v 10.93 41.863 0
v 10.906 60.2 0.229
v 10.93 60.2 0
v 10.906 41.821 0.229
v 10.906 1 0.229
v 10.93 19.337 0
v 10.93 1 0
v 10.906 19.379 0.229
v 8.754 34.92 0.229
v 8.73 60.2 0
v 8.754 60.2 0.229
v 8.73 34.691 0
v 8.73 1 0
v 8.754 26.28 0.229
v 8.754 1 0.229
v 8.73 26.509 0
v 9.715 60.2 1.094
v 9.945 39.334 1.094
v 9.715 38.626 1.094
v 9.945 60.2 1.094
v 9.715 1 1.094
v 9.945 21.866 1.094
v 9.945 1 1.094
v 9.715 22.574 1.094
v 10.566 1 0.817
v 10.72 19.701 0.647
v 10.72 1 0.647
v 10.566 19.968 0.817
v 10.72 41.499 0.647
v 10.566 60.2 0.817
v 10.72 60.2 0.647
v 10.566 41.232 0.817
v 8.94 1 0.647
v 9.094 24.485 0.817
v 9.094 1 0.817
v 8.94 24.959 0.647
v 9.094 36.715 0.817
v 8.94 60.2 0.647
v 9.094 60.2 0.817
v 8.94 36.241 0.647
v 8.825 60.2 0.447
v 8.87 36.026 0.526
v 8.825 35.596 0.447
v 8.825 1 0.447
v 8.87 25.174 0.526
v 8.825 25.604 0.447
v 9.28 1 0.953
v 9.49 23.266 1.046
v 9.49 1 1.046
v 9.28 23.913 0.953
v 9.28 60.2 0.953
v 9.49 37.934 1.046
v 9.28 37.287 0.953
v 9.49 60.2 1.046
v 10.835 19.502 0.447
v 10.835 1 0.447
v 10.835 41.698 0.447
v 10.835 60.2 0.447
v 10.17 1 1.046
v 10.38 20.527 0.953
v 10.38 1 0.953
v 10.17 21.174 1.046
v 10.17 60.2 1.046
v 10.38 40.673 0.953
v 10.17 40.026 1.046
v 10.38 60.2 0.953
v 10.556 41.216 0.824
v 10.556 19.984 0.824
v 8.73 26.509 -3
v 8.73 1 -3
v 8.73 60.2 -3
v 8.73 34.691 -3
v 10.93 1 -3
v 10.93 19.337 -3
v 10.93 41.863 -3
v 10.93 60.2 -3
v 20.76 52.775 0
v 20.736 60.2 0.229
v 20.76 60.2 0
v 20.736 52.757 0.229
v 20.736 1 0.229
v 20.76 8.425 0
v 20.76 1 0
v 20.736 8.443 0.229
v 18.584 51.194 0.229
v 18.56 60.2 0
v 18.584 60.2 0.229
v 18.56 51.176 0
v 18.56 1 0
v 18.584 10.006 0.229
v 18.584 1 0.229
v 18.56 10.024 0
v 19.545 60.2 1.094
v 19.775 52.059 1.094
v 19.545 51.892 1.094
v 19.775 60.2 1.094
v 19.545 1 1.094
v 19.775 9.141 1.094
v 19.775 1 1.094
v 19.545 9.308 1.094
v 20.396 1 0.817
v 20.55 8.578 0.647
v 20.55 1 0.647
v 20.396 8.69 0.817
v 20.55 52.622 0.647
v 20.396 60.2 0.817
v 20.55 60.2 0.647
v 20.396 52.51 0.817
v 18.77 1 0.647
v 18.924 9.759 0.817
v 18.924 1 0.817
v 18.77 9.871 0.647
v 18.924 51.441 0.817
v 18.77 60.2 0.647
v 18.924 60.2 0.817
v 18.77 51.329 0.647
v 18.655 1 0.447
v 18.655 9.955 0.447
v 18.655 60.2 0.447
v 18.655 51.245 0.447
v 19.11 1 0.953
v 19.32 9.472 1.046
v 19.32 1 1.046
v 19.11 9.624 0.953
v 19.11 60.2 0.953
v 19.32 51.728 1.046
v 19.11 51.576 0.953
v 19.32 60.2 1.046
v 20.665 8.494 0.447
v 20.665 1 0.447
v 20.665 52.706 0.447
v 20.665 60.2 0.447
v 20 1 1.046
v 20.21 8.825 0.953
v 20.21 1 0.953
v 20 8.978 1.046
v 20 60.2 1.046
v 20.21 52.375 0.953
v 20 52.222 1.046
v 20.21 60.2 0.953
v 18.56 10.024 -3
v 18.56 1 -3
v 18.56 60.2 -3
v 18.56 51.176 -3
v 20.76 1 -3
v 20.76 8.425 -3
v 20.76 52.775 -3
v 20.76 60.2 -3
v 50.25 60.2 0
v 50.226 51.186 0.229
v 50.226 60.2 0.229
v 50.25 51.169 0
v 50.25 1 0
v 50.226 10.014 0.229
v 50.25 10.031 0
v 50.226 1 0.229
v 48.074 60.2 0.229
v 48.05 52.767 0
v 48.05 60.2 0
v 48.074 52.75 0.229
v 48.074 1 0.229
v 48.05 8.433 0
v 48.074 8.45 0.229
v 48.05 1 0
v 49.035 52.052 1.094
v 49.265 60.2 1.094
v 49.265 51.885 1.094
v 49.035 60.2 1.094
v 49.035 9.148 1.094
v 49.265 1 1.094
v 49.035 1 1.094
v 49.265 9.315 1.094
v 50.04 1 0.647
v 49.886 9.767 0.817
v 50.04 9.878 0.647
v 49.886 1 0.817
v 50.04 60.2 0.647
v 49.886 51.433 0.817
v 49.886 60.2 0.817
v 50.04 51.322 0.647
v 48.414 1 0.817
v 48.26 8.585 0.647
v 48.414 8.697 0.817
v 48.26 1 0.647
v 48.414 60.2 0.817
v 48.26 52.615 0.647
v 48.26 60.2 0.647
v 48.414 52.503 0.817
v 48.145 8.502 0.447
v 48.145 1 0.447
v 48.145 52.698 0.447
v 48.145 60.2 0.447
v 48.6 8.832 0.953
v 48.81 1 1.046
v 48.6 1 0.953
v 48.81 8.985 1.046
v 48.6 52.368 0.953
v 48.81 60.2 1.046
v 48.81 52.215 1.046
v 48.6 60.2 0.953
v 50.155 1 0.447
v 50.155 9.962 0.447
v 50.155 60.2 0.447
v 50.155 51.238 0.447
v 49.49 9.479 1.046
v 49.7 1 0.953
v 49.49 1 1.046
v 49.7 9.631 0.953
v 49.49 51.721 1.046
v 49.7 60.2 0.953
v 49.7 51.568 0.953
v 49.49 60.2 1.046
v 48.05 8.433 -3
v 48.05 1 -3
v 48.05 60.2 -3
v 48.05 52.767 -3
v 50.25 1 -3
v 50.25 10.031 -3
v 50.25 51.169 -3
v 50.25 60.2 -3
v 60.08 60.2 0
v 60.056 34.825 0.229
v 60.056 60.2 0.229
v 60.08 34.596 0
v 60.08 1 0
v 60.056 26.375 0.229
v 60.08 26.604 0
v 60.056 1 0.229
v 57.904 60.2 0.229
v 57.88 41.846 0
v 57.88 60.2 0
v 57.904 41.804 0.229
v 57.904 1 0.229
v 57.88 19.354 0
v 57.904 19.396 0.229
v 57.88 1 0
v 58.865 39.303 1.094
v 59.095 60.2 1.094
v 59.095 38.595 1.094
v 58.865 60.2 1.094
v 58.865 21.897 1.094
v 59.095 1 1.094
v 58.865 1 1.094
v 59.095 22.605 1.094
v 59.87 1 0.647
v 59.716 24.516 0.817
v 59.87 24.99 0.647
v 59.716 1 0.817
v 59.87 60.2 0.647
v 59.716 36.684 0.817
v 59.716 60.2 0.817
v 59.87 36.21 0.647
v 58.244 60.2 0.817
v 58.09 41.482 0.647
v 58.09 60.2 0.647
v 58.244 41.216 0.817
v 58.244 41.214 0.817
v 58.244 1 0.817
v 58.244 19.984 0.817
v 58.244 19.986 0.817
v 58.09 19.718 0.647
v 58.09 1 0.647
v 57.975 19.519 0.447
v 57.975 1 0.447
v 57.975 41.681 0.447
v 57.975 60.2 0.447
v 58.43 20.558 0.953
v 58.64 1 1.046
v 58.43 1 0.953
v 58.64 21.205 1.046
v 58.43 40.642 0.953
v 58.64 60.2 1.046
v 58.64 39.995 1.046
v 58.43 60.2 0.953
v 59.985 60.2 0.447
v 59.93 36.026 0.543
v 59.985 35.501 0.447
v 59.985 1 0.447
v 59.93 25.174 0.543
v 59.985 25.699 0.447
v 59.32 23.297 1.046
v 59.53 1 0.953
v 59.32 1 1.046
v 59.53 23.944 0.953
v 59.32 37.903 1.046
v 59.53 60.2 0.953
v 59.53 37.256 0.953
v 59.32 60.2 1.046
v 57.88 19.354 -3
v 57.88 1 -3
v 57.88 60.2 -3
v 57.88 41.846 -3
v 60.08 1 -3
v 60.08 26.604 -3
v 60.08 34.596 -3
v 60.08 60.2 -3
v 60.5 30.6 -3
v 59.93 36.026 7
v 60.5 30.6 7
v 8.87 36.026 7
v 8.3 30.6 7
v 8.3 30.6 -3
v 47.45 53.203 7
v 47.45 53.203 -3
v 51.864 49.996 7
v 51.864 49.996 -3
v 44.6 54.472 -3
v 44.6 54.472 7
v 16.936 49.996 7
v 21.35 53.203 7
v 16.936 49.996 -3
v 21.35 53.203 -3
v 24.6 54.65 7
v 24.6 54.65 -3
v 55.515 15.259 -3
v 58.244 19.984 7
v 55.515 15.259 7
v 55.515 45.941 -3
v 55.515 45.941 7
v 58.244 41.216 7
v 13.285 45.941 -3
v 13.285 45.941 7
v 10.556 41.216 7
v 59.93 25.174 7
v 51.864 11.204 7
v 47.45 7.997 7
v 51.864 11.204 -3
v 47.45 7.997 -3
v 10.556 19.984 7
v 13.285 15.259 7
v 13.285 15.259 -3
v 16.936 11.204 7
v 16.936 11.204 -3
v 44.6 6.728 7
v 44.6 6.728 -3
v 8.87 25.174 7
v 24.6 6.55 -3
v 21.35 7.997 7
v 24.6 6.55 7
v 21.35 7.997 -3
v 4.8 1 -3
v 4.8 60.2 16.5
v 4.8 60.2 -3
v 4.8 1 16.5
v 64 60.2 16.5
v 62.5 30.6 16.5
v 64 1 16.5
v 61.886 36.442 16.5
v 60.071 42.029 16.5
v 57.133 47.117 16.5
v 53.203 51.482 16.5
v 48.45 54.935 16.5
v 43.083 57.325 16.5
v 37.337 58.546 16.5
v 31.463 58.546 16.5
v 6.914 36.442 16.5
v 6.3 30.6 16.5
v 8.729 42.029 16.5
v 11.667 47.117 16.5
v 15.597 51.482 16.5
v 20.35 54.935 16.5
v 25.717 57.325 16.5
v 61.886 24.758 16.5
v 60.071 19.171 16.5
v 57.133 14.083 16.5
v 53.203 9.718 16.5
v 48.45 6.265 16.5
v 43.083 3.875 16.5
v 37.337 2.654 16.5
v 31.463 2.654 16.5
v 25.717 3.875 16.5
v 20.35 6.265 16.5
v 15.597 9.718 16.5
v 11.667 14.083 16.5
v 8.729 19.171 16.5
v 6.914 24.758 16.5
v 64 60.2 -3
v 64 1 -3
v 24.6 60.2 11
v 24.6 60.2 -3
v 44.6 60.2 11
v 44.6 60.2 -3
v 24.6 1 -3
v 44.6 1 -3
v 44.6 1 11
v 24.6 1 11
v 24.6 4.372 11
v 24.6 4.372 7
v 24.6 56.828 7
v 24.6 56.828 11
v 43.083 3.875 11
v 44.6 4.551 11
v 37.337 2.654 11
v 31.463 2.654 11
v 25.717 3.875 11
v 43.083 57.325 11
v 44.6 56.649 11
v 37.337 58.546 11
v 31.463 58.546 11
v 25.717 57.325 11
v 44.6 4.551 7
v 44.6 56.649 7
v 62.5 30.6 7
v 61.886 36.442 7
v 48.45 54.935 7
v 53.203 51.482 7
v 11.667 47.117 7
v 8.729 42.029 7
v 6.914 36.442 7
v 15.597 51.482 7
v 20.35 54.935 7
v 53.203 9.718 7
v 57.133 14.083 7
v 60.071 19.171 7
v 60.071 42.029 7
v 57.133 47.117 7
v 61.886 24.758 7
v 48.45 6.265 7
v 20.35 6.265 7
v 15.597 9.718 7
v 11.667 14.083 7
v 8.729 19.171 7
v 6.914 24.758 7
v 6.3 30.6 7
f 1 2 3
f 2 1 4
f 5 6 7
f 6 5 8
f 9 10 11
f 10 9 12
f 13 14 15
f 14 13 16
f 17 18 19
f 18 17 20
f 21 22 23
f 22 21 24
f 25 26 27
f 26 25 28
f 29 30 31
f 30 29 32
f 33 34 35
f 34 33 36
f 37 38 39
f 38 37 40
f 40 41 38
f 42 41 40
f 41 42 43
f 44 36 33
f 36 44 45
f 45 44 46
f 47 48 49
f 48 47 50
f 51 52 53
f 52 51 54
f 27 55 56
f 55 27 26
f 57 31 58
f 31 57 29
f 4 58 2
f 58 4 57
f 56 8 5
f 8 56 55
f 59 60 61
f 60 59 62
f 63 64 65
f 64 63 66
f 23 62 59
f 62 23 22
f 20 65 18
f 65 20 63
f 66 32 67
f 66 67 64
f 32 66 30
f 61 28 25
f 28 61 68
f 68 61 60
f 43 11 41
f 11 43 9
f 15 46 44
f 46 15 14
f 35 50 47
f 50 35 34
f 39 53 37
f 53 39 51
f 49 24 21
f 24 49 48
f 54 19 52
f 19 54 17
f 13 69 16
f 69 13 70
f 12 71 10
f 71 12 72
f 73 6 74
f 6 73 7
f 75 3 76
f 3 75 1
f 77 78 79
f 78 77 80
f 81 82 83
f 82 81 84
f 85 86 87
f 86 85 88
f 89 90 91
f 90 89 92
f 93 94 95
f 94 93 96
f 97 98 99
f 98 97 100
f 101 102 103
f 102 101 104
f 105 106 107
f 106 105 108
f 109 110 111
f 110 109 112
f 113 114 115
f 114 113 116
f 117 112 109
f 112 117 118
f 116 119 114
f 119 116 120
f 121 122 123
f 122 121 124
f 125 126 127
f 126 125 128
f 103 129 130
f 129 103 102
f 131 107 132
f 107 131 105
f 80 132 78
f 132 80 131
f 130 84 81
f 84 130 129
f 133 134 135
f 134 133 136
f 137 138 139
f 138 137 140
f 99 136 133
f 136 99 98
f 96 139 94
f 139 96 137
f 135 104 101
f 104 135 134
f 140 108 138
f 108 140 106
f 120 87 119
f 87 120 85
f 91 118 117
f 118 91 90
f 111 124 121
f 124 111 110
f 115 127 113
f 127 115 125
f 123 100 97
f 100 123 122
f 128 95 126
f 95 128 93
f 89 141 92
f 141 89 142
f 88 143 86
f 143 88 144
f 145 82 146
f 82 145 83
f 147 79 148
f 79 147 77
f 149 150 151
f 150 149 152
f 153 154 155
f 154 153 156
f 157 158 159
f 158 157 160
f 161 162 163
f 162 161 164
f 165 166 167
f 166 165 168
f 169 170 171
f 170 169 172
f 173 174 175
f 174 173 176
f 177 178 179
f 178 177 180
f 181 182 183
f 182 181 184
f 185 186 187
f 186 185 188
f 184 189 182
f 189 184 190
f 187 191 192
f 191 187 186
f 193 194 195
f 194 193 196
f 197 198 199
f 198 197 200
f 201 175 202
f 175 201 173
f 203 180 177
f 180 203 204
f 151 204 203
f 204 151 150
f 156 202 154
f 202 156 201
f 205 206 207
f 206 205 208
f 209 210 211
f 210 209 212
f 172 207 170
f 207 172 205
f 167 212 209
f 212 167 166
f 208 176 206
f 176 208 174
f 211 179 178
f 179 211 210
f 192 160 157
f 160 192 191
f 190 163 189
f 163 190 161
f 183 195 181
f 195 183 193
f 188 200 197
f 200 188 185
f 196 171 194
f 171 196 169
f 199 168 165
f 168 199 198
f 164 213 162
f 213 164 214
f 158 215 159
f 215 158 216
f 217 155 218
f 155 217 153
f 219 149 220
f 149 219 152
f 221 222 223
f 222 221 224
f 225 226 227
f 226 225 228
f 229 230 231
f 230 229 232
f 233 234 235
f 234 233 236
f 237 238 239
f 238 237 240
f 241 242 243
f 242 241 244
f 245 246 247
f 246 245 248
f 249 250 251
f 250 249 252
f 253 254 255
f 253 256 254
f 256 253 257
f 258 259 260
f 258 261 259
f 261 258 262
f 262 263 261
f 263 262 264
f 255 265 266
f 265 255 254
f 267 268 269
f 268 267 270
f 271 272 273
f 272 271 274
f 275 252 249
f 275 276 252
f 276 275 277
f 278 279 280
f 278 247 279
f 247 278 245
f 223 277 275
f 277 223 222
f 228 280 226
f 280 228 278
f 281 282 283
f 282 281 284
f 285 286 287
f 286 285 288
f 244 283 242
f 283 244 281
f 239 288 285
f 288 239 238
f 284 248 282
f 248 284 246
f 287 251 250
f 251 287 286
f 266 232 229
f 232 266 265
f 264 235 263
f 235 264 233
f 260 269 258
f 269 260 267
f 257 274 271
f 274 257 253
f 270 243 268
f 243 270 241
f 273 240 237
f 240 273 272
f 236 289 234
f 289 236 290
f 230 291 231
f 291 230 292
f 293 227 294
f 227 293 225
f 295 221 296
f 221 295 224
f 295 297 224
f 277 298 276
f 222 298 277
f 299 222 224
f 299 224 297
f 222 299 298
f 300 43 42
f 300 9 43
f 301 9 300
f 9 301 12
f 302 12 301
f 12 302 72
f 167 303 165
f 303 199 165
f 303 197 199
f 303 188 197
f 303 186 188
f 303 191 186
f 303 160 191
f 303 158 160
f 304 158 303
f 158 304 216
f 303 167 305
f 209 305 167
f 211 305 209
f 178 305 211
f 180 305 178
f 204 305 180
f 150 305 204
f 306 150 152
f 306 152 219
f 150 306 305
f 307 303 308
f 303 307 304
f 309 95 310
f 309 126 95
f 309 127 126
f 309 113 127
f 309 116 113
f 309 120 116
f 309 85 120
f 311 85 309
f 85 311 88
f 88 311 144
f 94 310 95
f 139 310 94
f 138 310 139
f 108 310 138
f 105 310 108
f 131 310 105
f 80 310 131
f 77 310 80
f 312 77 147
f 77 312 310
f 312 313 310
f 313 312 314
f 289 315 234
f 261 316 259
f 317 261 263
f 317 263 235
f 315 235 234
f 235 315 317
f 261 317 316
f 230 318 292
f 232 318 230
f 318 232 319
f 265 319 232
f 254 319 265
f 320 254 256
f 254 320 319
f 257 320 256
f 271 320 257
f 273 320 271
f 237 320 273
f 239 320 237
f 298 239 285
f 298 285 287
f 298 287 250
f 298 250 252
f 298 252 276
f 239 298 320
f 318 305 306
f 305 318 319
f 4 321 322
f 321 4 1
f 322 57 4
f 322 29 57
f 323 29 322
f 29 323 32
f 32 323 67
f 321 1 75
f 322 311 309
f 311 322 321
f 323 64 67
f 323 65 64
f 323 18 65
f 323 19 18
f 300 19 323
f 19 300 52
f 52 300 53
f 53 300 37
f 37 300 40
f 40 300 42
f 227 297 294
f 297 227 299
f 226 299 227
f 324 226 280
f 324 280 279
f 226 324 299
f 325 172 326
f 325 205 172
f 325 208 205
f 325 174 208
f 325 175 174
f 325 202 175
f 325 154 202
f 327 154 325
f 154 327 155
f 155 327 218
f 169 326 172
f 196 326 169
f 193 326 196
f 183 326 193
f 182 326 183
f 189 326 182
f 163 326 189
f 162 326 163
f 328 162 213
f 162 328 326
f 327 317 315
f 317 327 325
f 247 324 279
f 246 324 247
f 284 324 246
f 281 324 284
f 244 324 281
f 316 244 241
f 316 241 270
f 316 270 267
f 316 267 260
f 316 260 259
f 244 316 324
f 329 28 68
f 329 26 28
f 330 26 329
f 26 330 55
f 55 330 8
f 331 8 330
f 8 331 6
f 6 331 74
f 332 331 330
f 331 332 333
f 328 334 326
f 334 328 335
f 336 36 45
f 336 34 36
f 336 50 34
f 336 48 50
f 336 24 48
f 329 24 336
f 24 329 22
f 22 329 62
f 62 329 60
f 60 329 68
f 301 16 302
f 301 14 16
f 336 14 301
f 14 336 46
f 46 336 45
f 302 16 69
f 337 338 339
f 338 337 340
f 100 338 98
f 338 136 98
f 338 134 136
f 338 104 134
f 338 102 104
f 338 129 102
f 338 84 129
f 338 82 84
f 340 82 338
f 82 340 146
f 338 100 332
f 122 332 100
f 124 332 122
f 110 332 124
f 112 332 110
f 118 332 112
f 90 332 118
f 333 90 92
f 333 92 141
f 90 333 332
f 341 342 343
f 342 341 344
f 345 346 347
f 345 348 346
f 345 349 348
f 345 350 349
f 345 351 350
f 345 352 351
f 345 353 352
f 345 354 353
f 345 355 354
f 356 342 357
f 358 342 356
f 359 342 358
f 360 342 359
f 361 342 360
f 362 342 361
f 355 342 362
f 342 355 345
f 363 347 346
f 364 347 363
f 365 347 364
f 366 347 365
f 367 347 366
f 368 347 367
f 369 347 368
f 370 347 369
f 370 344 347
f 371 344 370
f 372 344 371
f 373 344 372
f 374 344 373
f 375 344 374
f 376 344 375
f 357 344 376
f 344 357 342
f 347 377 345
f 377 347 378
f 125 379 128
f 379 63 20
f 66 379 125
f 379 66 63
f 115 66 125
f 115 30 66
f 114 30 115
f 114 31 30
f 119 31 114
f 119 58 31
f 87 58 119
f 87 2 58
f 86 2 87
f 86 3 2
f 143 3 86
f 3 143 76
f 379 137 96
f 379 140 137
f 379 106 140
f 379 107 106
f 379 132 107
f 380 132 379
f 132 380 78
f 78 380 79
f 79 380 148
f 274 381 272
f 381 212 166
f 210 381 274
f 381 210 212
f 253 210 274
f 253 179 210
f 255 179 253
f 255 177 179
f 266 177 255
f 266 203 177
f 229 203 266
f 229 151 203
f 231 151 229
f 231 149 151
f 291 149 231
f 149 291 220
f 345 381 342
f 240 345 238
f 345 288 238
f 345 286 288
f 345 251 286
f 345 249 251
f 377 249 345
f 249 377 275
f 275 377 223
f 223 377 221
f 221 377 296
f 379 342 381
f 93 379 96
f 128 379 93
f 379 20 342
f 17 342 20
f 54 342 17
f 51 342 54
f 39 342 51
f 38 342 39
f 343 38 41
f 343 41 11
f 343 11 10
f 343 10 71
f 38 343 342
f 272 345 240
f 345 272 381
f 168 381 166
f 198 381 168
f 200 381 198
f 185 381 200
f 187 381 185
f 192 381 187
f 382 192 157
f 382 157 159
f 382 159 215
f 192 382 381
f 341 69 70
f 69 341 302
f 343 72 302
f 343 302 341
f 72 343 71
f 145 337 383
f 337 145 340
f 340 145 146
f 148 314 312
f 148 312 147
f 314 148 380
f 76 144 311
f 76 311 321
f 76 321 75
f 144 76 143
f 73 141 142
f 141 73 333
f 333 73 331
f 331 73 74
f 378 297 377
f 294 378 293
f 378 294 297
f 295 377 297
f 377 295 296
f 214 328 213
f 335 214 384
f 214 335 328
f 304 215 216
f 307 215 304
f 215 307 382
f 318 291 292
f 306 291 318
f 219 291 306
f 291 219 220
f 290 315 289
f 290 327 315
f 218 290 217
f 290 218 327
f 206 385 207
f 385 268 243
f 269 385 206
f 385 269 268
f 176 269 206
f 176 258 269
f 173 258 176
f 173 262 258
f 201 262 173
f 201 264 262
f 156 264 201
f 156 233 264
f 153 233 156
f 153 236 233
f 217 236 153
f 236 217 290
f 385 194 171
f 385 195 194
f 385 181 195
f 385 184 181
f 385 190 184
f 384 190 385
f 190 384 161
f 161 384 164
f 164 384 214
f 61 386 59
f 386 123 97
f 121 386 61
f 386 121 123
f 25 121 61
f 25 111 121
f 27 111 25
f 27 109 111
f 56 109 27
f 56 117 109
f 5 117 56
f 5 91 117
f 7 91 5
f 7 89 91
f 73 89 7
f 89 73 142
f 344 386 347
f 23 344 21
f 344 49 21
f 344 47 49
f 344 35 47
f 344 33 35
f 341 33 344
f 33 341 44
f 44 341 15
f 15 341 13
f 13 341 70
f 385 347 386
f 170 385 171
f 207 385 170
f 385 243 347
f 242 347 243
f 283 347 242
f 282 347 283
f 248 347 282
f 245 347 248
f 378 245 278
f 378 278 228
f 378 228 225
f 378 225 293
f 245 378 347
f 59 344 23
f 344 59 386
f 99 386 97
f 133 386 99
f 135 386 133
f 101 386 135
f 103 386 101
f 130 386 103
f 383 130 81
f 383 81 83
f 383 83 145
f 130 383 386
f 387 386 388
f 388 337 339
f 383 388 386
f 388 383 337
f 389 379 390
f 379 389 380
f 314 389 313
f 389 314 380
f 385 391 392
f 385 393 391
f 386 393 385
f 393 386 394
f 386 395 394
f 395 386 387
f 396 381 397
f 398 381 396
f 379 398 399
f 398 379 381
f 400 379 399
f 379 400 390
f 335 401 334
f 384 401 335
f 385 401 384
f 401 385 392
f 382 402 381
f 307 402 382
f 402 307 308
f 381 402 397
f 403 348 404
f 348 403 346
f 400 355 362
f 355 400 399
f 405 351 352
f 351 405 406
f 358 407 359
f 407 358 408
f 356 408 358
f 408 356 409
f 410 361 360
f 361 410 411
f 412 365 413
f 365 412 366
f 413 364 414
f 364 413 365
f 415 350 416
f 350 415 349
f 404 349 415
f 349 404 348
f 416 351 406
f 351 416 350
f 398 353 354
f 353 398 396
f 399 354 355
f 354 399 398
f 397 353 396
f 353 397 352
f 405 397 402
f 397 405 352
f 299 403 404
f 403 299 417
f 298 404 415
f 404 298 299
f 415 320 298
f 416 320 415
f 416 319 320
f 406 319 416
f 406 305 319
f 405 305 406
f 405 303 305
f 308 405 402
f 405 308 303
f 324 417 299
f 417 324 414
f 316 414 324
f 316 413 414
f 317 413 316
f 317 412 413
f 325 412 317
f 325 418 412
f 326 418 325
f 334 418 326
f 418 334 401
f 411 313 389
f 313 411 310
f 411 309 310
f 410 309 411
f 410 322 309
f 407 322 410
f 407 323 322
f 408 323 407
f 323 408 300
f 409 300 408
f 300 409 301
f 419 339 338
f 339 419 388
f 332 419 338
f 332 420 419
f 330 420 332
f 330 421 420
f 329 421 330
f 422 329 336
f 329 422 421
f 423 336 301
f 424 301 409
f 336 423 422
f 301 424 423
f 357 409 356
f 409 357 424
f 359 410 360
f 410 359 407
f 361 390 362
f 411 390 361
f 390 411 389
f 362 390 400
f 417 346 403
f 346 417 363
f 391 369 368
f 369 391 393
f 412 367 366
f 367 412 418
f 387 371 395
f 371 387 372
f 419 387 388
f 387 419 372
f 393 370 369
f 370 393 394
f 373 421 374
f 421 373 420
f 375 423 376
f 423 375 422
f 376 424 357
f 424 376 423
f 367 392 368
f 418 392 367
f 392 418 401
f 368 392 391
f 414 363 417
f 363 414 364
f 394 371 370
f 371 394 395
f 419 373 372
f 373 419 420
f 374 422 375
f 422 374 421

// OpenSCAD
//camera holder

tol = 0.1;

IRledarrayd = 54;
IRledarrayh = 12.5;//12.41

basex = IRledarrayd+2*tol+5;
basey = IRledarrayd+2*tol+5;
basez = IRledarrayh+7;




$fn=30;

///// modules ////////



module grid(){
            for (i = [0:9]) {
            translate([i*(7.83+2),0,0]){
                cylinder(d=2.1+tol,h=80);
                translate([0,-5,40]){
                cube([2.1+tol,10,80],center=true);    
                }//end translate
            }//end translate
        }//end for

    
    }//end grid
///////


module ircamholder(){
difference(){    
    translate([0,0,-5]){
        cube([basex,basey,basez]);

        }//end translate
                translate([basex/4+5,-1,-6]){
            cube([20,basey+2,15]);
    }//end translate
    
    translate([(basex)/2,(basey)/2,5]){
            cylinder(d=IRledarrayd+2*tol+2,h=IRledarrayh);
            }//end translate
            
    translate([(basex)/2,(basey)/2,-basez/2]){
        
        cylinder(d=(IRledarrayd+2*tol)-2,h=IRledarrayh+5);
        
        
        
        translate([0,0,-5]){
            cylinder(d=14,h=30);
            }//end translate
    }//end translate

    
}//end difference    

}//end module
difference(){
translate([4.8,1,2]){
ircamholder();
    }//end translate


translate([0,80,0]){
rotate([90,0,0]){
grid();
}
}
}
